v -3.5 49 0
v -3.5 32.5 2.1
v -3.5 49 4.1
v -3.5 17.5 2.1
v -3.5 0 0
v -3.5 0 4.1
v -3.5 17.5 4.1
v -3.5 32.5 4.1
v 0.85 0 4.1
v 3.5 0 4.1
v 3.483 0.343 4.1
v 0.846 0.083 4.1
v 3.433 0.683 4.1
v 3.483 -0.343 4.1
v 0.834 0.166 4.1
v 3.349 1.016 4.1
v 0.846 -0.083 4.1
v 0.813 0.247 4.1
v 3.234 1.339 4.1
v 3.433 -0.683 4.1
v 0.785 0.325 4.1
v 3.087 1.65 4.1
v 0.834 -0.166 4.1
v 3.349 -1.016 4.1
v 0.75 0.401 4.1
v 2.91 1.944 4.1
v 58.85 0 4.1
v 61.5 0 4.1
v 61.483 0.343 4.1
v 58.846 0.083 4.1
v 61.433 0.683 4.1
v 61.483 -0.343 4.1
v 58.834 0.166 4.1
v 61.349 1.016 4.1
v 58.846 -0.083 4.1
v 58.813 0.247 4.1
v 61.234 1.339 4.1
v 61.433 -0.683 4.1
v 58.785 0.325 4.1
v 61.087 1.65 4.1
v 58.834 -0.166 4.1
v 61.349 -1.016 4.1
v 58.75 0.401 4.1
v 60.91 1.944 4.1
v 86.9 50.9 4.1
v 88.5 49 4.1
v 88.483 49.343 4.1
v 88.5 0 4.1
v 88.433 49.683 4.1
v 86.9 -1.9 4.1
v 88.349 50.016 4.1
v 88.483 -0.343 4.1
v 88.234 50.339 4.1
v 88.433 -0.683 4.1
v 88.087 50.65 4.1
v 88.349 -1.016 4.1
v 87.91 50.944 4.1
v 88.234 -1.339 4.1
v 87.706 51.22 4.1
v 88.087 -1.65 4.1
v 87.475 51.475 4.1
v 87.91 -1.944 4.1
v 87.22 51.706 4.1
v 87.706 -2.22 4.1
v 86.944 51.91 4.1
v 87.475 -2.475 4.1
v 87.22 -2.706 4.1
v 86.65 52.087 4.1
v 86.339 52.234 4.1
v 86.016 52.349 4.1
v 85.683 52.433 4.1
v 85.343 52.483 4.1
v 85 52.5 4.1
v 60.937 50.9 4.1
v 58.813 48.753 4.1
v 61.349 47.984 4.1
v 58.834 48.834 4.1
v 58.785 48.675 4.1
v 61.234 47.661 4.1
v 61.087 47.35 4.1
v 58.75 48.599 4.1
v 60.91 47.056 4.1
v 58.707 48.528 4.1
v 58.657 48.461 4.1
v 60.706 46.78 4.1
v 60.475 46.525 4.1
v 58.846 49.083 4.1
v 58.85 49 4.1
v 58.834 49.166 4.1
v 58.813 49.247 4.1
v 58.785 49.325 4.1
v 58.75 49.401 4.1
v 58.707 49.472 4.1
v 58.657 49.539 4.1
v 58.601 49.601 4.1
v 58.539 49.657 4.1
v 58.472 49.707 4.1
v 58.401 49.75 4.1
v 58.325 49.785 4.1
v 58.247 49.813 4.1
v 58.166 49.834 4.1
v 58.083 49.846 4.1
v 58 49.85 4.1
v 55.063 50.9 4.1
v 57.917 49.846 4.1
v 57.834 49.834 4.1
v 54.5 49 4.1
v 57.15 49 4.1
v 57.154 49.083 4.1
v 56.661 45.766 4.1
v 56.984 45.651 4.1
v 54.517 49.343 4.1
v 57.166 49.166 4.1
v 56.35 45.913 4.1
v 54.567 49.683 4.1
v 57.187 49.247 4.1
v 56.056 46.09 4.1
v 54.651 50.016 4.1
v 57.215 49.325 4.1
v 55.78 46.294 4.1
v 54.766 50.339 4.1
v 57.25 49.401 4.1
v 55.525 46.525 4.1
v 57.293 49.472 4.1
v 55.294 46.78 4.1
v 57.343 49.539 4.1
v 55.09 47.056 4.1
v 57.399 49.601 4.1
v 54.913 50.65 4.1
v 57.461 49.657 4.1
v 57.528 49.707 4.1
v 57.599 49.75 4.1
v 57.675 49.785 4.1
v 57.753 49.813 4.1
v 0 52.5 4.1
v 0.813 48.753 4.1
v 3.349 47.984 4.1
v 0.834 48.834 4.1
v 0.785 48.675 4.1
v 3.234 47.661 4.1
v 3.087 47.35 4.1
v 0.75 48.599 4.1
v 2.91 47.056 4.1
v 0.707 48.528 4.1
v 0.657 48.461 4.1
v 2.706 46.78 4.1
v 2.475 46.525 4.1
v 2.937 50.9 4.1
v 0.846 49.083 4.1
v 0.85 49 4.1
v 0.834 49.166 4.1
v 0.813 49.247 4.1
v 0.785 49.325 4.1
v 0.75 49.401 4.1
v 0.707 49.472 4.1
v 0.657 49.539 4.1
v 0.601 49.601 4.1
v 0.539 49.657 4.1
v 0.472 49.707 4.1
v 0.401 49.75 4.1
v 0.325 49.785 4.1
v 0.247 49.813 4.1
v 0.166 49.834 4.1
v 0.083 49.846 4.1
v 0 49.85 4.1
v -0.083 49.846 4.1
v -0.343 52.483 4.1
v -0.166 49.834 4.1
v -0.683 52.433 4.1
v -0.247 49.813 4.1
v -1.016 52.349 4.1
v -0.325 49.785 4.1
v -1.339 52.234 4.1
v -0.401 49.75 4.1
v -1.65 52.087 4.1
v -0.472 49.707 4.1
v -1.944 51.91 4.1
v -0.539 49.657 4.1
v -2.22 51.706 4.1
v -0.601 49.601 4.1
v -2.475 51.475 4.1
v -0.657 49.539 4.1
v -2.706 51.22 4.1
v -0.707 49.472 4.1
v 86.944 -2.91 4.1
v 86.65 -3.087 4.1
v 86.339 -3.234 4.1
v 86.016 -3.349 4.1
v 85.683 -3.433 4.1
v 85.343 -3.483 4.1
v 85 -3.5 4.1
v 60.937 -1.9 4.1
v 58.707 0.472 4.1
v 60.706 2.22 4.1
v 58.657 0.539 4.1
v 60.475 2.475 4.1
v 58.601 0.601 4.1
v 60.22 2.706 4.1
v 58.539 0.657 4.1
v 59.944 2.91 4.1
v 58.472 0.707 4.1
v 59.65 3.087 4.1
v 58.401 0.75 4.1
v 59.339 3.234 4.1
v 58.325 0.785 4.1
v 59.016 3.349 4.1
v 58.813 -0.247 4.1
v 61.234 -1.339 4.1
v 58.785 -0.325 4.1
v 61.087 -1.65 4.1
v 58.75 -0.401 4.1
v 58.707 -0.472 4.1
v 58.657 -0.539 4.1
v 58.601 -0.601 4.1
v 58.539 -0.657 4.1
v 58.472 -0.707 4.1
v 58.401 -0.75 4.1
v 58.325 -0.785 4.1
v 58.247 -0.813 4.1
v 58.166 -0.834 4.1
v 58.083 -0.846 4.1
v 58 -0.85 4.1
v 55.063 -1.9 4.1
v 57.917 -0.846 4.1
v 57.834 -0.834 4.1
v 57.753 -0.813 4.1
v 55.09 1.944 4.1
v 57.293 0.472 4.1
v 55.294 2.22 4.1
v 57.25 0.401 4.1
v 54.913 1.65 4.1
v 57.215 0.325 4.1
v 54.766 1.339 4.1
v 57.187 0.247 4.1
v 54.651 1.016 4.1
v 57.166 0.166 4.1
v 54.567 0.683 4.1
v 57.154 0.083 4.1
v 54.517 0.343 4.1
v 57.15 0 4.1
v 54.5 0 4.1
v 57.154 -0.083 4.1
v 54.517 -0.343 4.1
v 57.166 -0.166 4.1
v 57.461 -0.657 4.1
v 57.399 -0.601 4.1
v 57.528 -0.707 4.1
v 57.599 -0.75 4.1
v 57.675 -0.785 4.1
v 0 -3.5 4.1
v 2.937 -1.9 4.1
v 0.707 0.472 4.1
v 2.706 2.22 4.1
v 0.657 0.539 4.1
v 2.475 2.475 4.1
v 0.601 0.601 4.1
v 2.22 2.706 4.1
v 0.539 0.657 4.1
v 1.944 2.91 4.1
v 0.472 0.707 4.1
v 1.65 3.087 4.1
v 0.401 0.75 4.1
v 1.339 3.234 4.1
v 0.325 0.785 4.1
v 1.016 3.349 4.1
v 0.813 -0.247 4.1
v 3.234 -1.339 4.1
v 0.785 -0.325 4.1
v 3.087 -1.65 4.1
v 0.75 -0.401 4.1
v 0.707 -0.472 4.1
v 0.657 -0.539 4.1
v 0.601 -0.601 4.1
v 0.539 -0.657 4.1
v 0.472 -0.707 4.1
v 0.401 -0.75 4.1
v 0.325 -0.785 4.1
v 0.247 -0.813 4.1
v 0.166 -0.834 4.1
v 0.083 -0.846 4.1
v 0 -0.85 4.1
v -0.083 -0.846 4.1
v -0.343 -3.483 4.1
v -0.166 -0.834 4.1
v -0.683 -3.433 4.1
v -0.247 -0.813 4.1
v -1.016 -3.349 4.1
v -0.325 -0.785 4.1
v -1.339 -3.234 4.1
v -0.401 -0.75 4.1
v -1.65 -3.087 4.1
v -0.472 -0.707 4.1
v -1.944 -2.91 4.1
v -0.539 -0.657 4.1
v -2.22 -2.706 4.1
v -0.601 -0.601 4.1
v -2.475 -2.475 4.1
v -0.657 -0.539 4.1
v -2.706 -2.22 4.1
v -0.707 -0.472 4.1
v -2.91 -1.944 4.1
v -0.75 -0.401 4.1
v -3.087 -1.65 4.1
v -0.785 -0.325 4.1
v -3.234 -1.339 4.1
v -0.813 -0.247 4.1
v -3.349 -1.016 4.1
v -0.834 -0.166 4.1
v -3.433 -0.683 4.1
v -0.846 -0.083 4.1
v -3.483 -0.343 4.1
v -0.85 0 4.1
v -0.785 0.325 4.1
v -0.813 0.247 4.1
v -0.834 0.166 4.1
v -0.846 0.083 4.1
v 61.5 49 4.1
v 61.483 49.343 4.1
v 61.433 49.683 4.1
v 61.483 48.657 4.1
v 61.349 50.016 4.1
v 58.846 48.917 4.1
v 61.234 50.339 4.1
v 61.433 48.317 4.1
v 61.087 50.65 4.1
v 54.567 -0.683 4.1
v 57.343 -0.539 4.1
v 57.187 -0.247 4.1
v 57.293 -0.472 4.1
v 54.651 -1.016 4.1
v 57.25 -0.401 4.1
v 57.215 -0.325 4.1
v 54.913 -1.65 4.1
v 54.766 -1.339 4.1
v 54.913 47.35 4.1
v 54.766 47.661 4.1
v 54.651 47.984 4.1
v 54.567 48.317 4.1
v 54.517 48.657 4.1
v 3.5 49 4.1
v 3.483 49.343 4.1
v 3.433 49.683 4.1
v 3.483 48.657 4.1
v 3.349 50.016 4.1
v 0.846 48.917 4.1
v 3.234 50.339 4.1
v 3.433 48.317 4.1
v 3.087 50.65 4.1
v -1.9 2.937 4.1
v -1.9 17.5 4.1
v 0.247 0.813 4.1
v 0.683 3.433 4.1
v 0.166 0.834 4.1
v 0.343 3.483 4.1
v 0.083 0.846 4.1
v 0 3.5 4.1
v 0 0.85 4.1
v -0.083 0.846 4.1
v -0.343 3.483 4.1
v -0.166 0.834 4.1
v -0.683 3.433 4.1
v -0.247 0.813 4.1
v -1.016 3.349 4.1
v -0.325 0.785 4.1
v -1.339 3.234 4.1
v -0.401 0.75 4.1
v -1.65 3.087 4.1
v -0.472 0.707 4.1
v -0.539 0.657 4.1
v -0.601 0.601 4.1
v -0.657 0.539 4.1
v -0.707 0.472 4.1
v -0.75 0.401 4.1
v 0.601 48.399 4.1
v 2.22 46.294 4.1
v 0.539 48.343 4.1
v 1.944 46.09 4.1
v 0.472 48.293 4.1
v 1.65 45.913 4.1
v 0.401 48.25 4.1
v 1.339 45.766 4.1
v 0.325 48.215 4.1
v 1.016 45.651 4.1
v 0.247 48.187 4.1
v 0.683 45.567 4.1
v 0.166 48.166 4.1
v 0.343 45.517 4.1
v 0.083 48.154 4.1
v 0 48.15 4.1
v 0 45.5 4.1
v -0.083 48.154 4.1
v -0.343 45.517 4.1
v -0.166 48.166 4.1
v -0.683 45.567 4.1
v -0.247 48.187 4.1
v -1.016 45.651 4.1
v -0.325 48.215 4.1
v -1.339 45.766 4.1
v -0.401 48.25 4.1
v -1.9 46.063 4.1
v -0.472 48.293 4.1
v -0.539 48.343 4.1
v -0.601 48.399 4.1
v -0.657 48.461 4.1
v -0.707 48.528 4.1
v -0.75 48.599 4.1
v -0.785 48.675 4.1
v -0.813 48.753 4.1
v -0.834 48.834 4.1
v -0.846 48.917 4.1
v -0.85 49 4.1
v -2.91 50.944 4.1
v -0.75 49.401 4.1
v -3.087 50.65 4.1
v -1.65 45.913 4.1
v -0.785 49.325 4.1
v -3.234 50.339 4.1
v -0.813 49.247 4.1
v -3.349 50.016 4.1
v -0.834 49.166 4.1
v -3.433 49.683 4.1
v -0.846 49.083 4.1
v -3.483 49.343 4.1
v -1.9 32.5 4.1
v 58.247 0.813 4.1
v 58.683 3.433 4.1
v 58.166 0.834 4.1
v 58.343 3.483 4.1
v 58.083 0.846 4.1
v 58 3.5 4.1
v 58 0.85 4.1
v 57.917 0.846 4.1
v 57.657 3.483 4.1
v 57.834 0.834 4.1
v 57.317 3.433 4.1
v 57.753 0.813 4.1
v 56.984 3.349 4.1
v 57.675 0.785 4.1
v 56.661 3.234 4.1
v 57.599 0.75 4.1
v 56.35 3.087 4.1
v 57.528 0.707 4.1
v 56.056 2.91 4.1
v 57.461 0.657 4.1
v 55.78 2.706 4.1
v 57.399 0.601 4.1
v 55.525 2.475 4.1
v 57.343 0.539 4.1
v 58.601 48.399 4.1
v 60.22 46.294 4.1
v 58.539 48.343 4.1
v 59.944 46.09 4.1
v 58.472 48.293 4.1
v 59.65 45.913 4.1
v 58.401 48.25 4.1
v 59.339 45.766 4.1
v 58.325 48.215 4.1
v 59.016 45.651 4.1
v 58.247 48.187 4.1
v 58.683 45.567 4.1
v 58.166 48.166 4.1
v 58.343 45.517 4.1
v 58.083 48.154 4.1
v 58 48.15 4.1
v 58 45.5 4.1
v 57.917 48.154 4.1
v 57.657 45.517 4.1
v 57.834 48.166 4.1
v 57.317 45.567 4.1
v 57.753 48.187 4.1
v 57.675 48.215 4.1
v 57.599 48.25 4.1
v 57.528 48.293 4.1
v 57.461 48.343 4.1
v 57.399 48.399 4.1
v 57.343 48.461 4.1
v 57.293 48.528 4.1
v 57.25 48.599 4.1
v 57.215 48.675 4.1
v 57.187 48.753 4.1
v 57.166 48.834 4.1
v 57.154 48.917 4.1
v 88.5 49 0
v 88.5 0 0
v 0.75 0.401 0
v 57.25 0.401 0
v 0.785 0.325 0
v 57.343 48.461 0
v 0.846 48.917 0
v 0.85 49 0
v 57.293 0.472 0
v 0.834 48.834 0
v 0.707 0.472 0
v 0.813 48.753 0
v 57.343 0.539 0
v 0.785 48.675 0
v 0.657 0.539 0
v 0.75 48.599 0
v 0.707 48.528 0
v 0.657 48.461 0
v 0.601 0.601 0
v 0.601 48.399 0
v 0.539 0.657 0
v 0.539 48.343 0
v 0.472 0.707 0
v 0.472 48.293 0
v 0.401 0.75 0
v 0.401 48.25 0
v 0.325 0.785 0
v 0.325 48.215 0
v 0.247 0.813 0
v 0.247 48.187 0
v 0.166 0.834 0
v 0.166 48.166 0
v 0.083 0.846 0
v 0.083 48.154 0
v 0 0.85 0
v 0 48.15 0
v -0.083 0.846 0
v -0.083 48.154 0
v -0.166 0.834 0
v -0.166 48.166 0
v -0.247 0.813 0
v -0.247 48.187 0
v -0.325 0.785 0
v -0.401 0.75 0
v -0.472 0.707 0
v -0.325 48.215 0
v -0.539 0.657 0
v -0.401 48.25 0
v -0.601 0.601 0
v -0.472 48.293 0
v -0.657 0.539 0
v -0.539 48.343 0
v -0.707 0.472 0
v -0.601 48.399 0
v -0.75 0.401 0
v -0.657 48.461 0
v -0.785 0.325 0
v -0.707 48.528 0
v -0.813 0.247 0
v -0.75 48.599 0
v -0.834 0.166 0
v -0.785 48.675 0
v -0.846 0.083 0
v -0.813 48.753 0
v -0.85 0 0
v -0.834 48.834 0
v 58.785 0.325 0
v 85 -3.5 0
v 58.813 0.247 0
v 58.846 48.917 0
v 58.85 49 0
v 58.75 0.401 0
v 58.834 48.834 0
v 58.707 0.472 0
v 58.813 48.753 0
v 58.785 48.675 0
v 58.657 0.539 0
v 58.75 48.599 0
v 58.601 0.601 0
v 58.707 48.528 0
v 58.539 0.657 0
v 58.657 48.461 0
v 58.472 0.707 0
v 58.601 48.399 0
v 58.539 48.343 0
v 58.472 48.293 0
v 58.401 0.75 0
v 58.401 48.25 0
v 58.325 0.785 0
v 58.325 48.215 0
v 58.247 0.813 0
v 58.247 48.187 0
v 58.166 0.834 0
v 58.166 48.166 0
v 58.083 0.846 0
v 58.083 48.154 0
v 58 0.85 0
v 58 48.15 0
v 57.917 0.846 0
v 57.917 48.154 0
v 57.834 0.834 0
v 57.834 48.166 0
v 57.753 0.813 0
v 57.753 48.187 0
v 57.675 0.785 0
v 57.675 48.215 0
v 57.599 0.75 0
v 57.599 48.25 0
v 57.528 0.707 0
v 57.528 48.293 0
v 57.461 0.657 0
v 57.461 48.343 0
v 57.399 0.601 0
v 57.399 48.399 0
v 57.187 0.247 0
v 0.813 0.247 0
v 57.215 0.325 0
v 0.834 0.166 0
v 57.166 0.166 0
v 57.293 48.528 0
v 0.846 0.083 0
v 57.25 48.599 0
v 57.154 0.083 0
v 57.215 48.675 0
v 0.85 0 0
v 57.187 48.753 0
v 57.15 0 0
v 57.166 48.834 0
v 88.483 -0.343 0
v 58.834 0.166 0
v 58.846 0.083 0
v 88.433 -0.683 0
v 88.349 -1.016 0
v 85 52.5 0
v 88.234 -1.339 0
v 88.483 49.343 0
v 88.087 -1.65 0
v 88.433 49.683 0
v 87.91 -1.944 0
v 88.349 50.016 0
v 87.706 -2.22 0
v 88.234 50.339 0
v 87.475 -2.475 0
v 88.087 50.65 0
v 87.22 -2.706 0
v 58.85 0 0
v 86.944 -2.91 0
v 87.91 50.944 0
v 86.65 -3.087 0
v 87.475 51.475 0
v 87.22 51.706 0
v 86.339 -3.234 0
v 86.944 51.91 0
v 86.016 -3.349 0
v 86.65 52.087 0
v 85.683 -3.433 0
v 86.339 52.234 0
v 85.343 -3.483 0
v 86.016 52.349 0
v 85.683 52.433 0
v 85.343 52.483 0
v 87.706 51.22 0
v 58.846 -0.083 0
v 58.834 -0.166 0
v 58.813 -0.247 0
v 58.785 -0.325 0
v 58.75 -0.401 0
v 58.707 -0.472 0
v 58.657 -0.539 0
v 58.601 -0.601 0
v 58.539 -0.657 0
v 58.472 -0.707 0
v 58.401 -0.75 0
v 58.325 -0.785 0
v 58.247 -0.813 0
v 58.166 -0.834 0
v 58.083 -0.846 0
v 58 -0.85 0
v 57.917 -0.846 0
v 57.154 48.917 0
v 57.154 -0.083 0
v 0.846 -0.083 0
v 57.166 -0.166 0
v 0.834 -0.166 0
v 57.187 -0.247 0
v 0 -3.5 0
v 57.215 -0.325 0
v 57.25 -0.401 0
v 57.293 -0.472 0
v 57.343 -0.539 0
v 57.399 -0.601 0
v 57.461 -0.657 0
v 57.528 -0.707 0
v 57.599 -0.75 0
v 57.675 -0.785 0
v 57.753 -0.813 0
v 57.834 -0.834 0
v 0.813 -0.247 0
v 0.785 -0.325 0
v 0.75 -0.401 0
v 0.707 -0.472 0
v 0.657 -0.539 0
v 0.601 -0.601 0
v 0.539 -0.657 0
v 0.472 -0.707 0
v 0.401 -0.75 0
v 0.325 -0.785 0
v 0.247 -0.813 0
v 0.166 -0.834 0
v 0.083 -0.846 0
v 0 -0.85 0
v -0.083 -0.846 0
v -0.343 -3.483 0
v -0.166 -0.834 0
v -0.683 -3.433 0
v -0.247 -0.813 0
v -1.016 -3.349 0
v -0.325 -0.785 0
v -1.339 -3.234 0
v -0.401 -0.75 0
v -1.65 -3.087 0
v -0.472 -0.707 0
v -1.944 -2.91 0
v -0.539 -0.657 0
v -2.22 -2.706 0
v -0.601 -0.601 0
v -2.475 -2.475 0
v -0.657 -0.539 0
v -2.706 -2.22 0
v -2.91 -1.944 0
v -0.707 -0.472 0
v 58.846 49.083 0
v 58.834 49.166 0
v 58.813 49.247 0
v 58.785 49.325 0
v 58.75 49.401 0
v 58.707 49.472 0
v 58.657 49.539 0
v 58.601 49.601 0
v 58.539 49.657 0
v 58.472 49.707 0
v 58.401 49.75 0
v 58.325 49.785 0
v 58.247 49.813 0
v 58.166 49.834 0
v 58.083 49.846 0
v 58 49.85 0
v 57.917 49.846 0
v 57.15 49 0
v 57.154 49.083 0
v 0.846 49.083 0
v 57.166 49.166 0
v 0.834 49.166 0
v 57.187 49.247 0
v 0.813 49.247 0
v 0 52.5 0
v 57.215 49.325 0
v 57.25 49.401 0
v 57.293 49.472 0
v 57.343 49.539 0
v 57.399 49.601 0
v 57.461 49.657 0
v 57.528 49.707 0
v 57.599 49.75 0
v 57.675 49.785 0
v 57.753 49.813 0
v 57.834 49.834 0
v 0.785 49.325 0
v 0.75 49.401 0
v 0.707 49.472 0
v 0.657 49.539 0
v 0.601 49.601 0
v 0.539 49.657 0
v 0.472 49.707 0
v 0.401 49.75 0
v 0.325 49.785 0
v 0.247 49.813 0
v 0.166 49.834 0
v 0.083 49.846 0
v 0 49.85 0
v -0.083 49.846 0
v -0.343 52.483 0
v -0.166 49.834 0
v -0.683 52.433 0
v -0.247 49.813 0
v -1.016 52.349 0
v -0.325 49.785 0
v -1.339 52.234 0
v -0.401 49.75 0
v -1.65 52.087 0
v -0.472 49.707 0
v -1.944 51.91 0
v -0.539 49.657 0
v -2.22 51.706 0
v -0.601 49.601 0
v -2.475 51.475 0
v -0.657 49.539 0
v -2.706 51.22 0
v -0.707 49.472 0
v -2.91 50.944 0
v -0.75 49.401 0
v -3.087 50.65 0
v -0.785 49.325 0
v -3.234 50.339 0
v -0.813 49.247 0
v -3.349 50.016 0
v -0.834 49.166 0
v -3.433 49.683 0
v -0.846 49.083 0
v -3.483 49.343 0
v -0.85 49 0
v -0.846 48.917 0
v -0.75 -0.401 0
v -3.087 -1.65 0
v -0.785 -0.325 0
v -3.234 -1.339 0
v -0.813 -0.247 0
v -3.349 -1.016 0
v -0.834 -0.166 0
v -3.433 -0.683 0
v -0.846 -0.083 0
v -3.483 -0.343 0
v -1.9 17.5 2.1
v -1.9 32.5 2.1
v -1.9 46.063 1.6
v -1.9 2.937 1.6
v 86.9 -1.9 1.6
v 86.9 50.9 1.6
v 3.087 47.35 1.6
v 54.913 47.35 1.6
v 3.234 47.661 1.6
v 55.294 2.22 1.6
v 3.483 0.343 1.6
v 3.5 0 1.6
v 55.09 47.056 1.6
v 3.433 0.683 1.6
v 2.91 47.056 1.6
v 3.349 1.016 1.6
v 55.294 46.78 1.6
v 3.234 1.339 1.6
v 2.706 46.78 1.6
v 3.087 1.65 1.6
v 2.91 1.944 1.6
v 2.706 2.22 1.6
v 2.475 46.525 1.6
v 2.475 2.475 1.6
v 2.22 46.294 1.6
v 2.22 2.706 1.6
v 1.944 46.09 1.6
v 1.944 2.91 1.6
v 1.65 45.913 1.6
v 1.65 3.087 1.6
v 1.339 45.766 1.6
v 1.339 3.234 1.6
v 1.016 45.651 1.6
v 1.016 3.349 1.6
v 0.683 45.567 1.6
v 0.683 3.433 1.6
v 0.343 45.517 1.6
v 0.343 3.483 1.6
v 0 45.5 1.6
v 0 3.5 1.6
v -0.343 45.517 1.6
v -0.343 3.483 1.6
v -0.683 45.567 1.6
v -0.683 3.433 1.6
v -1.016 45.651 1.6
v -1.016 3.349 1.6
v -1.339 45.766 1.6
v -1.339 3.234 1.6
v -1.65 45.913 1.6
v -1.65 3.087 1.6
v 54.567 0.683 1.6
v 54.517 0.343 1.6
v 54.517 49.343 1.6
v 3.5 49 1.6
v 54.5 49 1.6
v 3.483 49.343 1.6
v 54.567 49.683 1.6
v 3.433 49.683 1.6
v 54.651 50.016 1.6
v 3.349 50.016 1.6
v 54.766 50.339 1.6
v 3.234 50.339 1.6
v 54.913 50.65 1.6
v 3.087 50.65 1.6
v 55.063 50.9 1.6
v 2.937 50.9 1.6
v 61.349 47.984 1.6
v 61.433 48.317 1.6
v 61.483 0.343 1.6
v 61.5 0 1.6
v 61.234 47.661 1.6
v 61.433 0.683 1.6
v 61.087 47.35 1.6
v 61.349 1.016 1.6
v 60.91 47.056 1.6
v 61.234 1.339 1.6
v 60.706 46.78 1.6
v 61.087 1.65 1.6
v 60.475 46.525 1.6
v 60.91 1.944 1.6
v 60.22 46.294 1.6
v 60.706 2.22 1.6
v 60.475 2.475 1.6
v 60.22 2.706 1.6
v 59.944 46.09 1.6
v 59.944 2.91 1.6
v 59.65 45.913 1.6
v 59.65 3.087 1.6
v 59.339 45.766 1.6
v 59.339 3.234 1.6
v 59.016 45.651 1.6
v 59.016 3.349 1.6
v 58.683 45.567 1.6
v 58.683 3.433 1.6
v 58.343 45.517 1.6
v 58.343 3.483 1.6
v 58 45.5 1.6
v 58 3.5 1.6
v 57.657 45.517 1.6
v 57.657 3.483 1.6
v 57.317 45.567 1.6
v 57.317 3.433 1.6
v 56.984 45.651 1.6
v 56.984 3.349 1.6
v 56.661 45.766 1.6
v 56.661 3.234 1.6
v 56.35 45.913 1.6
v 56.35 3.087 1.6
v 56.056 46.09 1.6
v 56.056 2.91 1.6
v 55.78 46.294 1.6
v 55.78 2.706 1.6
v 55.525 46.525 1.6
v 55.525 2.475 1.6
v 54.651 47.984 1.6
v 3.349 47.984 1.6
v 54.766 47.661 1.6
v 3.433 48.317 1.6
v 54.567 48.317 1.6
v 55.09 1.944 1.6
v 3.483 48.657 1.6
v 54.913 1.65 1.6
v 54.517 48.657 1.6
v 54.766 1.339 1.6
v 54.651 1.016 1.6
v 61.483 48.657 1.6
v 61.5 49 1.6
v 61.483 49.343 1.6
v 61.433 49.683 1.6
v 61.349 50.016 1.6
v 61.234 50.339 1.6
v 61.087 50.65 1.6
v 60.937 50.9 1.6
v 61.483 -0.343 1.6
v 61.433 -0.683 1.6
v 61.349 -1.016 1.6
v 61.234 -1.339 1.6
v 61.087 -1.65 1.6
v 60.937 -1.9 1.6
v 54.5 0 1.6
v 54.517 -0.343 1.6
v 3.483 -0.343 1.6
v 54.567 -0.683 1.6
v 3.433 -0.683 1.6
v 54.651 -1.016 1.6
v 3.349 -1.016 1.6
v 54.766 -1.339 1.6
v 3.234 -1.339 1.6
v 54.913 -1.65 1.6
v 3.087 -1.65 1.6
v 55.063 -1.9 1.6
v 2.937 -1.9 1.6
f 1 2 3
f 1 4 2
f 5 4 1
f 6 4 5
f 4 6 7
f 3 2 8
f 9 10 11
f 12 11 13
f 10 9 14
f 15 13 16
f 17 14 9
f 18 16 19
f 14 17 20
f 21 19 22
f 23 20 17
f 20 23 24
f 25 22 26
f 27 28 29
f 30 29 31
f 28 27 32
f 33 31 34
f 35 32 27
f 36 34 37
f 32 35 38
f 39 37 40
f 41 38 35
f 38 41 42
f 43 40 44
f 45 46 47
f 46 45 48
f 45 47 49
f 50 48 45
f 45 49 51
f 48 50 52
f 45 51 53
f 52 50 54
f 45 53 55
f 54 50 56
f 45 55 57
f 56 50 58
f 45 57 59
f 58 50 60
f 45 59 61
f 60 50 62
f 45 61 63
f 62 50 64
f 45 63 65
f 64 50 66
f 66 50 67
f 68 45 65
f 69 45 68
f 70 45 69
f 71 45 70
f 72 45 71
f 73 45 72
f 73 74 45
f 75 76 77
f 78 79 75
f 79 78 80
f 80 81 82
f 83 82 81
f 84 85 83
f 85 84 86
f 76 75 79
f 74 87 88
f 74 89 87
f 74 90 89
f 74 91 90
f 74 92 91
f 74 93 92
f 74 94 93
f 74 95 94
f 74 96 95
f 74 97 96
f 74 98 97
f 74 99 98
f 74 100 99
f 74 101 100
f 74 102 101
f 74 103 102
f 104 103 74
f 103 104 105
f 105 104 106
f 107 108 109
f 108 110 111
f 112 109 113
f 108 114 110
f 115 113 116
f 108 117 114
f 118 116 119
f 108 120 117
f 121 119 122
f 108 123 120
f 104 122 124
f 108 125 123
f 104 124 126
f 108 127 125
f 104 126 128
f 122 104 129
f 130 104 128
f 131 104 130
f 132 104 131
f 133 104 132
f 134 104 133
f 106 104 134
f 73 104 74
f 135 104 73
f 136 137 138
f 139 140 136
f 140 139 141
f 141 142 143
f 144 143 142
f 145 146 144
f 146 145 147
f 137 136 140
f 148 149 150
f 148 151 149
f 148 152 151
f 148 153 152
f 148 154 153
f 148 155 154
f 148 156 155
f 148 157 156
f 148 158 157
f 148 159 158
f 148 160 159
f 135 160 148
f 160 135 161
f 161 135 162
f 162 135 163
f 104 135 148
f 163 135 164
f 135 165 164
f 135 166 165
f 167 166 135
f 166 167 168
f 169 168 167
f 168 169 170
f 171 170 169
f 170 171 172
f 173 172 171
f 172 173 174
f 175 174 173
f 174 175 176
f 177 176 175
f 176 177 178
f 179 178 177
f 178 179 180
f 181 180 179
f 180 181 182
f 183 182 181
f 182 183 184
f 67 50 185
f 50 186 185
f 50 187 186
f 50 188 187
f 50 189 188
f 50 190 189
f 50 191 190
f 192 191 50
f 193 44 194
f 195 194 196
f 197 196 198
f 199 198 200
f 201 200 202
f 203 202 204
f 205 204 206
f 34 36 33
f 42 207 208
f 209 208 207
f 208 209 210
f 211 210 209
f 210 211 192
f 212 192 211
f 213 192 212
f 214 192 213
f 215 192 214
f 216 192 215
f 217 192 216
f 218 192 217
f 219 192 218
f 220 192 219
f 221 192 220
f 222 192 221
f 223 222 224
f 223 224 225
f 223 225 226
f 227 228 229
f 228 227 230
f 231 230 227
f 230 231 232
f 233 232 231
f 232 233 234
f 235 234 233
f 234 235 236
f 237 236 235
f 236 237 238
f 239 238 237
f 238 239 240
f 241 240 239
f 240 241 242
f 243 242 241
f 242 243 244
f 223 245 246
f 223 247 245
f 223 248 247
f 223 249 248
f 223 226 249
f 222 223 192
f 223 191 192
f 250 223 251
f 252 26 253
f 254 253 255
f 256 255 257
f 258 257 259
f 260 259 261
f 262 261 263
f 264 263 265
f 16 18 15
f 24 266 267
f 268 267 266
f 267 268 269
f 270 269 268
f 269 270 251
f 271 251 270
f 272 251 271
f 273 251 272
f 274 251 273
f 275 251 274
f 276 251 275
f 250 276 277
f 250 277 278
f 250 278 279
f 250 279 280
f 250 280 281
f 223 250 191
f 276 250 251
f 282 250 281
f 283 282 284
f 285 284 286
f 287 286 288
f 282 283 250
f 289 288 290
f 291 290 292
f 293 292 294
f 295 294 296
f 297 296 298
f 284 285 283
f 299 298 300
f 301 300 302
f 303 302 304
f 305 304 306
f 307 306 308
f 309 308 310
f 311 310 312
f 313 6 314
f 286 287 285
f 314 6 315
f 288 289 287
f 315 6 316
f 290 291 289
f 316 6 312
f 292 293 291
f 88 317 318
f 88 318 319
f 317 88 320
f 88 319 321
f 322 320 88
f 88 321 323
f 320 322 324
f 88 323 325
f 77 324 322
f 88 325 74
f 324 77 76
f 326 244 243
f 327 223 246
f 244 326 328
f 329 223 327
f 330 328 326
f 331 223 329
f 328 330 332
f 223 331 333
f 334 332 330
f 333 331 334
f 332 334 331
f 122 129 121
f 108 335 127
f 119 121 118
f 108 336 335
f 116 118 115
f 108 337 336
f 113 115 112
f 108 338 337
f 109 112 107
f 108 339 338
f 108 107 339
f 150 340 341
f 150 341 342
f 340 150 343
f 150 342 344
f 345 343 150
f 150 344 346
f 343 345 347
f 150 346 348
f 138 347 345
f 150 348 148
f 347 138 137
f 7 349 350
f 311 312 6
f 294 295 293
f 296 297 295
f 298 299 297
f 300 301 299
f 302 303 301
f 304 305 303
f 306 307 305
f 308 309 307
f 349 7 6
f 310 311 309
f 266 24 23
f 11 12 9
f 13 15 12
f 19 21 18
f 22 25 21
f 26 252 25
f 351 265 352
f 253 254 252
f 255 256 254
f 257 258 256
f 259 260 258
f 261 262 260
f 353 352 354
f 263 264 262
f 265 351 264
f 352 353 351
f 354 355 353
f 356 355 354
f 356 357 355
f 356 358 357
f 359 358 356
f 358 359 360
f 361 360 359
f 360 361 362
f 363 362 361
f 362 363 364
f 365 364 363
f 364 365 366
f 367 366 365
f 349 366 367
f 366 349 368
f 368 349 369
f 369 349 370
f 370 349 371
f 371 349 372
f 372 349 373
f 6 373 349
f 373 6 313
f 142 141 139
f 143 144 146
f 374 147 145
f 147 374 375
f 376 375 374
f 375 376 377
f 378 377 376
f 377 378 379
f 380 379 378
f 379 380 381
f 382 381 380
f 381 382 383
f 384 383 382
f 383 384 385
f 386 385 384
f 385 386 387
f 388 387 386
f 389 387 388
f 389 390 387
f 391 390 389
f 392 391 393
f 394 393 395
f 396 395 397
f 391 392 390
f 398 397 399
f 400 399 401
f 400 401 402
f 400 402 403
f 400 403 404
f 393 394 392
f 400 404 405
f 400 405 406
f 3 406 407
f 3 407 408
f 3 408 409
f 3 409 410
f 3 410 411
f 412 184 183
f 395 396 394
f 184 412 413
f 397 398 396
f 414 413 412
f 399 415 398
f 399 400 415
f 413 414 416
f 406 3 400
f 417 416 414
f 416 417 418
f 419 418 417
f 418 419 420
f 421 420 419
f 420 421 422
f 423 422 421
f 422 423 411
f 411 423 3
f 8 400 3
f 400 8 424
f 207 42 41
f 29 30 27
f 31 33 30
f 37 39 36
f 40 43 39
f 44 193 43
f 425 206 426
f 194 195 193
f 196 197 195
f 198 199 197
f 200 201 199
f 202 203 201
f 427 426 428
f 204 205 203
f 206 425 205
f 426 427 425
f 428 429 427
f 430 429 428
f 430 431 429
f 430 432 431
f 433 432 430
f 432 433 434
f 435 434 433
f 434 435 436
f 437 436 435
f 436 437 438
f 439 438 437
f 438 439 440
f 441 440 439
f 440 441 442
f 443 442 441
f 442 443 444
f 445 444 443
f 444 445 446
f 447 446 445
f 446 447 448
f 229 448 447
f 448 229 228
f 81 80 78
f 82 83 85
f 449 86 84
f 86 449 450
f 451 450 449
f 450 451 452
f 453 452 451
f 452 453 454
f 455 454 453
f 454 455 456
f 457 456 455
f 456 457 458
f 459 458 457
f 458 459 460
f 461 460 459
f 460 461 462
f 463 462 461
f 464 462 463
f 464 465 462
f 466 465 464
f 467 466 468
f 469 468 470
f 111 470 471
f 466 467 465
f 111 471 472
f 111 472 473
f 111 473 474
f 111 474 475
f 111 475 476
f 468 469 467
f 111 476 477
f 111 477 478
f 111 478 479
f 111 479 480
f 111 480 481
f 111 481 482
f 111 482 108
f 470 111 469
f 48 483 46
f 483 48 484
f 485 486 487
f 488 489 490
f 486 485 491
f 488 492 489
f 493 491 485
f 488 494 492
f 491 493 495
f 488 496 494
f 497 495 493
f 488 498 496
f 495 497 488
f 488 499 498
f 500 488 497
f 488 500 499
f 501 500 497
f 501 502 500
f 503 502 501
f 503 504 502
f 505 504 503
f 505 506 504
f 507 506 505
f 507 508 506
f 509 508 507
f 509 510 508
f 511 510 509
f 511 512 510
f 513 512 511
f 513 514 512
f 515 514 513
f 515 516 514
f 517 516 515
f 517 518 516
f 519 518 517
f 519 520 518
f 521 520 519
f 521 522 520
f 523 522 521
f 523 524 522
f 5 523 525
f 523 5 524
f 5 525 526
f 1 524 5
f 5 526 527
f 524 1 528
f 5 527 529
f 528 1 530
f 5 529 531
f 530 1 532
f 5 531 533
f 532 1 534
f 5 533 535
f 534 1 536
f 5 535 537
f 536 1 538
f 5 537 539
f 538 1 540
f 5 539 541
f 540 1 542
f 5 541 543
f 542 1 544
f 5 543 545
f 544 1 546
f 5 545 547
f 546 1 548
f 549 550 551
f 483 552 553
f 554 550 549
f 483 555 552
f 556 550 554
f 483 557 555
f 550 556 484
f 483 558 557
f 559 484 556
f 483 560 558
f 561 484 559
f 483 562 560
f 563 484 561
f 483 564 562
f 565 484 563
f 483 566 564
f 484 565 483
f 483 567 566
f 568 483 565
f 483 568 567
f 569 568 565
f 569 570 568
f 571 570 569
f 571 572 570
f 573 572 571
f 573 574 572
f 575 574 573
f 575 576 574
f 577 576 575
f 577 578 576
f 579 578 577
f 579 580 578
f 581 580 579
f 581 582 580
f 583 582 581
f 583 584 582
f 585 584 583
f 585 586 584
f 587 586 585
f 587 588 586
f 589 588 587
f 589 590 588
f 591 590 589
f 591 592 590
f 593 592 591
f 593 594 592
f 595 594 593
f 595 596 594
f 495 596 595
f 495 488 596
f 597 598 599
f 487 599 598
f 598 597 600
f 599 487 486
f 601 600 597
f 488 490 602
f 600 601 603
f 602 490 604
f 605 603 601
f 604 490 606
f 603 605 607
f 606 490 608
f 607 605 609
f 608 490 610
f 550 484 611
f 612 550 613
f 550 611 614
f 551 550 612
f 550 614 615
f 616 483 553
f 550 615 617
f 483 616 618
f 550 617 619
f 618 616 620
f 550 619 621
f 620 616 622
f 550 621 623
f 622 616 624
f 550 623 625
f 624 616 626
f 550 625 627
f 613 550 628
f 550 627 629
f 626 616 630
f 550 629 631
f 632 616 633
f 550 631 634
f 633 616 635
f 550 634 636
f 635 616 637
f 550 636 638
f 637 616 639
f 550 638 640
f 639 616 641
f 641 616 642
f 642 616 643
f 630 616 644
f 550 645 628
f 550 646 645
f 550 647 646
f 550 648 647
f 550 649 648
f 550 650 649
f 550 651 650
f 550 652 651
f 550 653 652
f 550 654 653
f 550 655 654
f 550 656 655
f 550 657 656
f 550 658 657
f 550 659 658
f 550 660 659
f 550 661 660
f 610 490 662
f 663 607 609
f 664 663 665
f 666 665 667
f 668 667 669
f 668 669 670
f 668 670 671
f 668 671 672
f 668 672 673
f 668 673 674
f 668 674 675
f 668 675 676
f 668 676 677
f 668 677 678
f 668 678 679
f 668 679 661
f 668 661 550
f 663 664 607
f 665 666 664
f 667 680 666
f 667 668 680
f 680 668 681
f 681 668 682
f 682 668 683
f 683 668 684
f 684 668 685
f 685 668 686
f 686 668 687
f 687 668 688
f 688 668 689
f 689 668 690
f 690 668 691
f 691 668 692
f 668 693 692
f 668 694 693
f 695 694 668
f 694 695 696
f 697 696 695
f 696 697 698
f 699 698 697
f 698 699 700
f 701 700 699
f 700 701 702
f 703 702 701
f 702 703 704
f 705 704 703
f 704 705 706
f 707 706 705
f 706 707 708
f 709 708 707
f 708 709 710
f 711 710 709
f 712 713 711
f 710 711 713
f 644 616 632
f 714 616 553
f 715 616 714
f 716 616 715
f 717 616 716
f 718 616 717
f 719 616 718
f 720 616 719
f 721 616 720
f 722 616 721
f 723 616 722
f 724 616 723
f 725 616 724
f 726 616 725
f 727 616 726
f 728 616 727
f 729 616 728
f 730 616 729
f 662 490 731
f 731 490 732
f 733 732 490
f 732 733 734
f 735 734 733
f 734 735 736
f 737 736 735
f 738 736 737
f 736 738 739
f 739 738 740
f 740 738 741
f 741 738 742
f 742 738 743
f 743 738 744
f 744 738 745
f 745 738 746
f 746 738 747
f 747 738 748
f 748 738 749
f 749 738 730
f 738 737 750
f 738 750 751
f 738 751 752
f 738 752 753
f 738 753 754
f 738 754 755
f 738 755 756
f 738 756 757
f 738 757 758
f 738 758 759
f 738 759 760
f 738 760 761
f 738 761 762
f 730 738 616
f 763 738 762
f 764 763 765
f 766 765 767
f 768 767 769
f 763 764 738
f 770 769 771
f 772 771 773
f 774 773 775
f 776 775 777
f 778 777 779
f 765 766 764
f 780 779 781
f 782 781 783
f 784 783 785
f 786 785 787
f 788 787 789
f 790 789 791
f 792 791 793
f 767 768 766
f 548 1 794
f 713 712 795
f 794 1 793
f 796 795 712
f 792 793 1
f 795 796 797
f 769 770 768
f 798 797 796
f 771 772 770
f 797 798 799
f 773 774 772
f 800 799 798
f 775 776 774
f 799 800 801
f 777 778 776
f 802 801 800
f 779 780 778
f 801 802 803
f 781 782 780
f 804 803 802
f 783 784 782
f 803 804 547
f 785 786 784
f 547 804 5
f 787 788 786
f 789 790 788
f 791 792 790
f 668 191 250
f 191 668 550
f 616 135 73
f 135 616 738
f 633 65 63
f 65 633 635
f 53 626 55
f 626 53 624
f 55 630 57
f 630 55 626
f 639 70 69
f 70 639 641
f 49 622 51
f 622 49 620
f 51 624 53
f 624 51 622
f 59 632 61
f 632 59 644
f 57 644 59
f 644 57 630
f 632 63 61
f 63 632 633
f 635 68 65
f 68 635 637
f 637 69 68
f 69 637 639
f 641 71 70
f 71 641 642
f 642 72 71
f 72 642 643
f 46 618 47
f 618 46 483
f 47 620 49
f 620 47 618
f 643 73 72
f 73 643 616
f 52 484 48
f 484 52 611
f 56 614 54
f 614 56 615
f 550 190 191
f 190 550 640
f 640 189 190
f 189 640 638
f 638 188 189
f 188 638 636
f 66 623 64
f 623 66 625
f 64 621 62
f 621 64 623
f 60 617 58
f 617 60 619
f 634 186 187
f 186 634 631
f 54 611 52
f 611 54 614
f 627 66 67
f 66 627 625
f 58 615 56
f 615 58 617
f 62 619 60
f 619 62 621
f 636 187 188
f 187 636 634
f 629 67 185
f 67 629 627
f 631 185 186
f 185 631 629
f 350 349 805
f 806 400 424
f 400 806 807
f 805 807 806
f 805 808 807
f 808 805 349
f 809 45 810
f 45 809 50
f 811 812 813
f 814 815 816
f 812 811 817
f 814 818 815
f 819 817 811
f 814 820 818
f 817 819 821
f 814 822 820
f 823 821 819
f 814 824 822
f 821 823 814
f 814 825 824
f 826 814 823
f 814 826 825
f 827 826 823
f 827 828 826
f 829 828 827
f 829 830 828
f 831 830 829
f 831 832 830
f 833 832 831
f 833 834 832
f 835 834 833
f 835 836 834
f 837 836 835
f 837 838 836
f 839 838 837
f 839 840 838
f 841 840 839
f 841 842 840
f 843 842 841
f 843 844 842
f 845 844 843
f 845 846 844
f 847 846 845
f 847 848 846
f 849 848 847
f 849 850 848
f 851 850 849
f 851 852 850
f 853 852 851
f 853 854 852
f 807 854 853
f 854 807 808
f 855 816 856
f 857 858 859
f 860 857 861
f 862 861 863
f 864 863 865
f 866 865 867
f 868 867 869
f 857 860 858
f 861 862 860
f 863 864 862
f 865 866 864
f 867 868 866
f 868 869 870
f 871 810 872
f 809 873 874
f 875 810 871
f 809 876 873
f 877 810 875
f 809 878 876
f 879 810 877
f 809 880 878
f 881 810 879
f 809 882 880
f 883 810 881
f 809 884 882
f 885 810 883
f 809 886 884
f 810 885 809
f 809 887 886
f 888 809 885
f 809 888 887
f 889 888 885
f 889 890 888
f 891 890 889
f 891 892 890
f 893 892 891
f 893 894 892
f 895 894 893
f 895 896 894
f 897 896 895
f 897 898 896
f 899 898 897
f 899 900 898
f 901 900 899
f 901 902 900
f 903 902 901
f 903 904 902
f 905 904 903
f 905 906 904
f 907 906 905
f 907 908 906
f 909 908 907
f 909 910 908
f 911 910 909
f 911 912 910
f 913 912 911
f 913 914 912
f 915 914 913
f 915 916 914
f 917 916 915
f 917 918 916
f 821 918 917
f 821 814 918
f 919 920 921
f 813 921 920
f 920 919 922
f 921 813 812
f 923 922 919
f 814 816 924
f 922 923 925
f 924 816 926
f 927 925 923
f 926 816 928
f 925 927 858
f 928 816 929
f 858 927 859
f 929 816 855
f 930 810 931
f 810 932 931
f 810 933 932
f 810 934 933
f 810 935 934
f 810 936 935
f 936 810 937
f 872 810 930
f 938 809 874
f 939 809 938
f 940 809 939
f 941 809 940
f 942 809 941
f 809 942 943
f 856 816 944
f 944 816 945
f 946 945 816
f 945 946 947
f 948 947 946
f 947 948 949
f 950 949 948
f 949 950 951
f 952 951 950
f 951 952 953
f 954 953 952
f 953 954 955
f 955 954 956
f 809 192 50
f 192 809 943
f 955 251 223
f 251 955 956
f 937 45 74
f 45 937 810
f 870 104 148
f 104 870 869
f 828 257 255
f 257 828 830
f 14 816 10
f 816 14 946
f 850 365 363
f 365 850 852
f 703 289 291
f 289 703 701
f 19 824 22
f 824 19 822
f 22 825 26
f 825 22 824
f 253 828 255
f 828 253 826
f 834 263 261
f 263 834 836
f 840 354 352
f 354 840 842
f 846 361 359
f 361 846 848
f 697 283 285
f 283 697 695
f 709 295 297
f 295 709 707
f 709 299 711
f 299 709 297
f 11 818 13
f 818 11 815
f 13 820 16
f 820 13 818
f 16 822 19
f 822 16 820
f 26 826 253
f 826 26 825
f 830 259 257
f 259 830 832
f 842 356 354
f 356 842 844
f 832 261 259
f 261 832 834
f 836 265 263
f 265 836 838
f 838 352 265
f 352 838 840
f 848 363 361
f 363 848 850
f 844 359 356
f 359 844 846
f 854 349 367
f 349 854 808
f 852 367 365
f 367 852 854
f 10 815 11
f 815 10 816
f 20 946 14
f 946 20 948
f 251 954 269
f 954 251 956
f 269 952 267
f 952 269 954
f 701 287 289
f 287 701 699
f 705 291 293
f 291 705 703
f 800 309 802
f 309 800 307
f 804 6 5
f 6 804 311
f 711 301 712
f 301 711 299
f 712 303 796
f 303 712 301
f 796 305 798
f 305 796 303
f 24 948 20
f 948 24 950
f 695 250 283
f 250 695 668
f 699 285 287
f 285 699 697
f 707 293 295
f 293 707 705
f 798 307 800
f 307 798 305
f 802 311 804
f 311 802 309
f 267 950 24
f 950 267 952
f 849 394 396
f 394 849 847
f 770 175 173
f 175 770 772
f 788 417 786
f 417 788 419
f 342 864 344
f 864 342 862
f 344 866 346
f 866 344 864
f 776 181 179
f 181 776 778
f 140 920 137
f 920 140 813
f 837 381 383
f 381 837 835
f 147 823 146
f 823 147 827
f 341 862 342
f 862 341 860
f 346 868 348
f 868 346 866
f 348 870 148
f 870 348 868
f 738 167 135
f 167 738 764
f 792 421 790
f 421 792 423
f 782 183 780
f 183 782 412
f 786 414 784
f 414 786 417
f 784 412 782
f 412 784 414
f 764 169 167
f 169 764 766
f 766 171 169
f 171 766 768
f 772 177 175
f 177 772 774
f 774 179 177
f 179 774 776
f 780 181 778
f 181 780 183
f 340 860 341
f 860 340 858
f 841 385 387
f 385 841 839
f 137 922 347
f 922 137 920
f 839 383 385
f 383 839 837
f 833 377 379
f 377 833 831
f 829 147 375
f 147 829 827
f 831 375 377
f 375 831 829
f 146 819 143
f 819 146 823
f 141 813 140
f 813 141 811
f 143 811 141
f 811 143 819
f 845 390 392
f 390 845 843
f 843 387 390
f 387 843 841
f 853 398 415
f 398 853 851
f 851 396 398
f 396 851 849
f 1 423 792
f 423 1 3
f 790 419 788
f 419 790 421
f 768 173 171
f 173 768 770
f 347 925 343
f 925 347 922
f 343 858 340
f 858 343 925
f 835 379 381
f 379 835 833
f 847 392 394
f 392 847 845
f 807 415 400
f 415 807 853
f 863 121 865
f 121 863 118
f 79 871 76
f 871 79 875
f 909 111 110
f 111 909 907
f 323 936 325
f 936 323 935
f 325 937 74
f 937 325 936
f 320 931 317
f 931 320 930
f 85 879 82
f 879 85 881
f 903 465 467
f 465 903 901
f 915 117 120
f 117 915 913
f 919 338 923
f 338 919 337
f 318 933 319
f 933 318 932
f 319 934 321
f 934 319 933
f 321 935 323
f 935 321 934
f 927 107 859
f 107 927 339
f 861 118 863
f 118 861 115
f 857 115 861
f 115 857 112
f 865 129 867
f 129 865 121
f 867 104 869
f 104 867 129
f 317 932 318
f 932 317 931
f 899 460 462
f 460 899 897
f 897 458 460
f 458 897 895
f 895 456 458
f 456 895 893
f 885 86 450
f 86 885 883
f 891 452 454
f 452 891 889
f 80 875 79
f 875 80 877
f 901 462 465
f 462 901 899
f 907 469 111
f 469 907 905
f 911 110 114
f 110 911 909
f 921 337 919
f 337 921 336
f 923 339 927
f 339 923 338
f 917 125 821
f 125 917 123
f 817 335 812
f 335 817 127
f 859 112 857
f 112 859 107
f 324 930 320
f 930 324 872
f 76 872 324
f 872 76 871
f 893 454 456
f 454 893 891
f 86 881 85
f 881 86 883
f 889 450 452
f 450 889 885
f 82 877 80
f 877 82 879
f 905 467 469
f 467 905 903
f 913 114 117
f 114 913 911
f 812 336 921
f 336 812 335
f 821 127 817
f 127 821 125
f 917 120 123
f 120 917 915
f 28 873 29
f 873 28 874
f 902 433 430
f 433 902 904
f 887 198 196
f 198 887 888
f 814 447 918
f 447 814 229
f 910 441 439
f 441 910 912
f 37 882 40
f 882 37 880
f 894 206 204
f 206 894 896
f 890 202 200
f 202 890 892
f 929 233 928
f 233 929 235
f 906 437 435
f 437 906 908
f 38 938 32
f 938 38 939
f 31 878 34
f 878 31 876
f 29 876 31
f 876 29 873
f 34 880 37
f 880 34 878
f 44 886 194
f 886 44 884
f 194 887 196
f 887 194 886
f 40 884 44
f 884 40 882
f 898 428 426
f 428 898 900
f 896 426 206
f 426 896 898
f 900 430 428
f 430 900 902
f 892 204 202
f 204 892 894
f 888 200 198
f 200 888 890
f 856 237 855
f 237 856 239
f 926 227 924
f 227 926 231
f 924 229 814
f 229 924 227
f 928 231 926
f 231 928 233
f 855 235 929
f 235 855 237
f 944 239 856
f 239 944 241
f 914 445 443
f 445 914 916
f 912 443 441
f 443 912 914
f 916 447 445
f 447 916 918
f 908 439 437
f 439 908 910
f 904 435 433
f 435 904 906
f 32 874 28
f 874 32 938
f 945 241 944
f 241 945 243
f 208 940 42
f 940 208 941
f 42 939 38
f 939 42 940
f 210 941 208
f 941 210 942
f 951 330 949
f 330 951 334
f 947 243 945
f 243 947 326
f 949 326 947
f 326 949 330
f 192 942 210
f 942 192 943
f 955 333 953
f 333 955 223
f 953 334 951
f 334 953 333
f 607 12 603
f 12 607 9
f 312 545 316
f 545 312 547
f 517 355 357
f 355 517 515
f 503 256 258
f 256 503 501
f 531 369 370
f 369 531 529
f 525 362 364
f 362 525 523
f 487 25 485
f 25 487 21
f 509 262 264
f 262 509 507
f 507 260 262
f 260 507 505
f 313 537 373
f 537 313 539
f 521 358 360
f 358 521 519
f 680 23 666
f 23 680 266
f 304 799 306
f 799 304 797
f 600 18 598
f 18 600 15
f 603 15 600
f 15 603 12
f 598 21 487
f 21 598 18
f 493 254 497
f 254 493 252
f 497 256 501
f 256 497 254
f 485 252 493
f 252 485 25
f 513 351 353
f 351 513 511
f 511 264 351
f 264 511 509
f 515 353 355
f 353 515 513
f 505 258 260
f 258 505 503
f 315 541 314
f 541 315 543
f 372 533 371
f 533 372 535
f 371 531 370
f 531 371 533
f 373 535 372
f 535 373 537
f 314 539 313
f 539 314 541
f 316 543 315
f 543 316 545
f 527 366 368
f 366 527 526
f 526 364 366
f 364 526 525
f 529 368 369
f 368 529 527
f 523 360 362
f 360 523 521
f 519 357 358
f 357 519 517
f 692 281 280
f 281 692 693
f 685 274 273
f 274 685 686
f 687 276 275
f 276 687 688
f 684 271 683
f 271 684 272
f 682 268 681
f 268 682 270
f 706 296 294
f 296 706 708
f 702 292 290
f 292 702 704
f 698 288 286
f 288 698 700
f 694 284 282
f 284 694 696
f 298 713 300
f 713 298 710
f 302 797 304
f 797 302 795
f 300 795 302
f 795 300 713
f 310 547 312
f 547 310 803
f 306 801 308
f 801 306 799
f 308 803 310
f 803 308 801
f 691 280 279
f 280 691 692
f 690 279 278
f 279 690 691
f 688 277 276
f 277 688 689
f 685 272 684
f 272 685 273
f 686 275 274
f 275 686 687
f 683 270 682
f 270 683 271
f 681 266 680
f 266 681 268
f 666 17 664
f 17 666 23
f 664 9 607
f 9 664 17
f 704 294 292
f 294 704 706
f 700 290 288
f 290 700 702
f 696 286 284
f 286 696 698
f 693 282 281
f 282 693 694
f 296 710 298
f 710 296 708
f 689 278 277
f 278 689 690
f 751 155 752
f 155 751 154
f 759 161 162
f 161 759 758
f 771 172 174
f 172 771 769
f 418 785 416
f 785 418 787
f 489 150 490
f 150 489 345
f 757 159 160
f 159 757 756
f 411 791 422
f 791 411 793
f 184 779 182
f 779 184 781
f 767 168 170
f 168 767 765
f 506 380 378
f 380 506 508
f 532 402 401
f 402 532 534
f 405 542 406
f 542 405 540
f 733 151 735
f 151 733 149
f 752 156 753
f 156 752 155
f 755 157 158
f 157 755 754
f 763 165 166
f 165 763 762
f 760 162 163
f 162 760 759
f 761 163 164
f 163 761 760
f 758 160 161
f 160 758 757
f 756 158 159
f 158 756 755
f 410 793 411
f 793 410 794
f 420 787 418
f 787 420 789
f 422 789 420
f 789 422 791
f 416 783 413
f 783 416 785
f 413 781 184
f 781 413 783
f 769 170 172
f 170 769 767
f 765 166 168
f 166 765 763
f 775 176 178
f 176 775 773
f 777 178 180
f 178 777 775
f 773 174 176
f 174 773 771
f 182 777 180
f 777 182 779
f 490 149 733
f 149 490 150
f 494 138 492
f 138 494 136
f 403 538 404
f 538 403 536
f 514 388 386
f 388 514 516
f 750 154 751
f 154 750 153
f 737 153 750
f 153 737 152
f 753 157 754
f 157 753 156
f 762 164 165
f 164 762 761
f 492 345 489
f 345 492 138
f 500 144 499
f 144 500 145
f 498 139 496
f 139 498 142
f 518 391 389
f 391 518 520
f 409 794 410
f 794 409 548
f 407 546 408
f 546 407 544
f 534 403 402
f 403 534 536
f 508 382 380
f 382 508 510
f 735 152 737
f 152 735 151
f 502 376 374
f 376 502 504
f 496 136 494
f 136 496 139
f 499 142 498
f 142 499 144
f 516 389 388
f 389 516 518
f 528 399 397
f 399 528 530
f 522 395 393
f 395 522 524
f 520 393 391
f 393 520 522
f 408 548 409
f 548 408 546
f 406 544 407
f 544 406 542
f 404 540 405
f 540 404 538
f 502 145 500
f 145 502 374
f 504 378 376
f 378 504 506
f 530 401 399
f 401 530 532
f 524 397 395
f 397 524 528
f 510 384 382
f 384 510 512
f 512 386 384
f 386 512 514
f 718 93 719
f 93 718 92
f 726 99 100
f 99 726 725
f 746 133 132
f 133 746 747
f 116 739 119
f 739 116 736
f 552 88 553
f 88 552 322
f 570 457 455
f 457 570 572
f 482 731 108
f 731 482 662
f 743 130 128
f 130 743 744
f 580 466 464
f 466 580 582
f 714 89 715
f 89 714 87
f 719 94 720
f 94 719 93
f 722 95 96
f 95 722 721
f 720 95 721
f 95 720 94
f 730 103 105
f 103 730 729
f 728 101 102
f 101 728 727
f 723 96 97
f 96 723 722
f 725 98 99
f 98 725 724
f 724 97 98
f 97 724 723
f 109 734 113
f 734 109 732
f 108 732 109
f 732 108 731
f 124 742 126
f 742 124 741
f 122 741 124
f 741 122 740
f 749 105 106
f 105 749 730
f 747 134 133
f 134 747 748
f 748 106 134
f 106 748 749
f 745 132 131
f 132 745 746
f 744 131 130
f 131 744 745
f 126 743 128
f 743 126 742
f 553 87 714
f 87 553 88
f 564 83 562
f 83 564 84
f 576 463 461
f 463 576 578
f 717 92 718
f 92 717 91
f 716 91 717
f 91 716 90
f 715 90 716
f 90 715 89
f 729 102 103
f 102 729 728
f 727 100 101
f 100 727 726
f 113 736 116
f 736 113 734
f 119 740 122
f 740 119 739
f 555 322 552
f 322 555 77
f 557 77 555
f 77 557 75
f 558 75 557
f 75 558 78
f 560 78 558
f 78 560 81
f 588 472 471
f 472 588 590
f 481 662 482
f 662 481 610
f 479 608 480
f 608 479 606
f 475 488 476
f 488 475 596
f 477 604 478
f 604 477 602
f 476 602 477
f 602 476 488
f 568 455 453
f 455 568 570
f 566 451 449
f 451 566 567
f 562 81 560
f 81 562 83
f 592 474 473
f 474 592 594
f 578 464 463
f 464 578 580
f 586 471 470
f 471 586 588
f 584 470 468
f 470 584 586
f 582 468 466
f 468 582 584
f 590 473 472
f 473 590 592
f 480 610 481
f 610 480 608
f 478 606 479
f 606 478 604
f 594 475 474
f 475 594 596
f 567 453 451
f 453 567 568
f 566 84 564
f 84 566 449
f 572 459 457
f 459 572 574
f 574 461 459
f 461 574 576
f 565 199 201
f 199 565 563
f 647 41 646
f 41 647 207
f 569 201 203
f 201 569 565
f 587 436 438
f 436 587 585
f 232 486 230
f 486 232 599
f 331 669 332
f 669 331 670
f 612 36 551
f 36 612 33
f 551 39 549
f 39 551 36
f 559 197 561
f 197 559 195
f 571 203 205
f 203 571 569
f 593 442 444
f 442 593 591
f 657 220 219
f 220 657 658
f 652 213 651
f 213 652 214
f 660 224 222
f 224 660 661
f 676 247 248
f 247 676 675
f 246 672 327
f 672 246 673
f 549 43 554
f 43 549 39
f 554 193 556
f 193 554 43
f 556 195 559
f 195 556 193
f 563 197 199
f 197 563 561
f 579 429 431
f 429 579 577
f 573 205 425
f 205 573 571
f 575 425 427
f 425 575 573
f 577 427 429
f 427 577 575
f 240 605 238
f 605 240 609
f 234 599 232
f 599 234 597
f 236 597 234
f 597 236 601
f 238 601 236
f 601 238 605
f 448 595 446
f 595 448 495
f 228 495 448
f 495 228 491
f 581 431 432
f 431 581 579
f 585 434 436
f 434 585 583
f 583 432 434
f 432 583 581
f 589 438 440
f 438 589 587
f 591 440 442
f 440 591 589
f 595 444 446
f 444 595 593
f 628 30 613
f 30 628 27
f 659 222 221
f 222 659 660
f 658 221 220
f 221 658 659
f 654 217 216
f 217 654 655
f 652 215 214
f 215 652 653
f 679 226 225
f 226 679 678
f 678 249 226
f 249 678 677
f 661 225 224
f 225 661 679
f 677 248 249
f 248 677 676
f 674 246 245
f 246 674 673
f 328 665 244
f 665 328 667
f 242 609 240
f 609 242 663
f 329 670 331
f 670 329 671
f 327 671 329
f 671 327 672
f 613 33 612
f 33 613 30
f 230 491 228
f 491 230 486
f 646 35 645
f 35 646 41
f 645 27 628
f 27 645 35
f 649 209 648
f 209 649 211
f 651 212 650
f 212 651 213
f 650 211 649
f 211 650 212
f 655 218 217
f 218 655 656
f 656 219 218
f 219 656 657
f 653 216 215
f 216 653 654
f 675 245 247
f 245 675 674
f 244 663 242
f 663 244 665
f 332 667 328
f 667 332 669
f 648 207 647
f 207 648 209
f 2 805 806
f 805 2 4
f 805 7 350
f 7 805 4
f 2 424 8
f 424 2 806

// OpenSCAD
thickness=1.6;
radius=3.5;
drill=0.85;
height=49;
width=85;
depth=thickness+2.5;
countersink = false;
$fn = 64; //number of faces on a circle

difference()
{
    union()
    {
        //create walls
        difference()
        {
            union()
            {
            translate([-radius,0,0])
                cube([width+2*radius,height,depth]);
            translate([0,-radius,0])
                cube([width,height+2*radius,depth]);
            translate([width,height,0])
                cylinder(depth,radius,radius);
            translate([width,0,0])
                cylinder(depth,radius,radius);
            }
            translate([-radius+thickness,-radius+thickness,thickness])
                cube([width+2*(radius-thickness),height+2*(radius-thickness),depth]);
        }
        
        //add the mounting brackets
        cylinder(depth,radius,radius);
        translate([0,height,0])
            cylinder(depth,radius,radius);
        translate([58,height,0])
            cylinder(depth,radius,radius);
        translate([58,0,0])
            cylinder(depth,radius,radius);
    }

    //drill holes
    cylinder(depth,drill,drill);
    translate([0,height,0])
        cylinder(depth,drill,drill);
    translate([58,height,0])
        cylinder(depth,drill,drill);
    translate([58,0,0])
        cylinder(depth,drill,drill);
    
    //countersink
    if(countersink==true)
    {
        cylinder(drill,drill*2,drill);
        translate([0,height,0])
            cylinder(drill,drill*2,drill);
        translate([width,height,0])
            cylinder(drill,drill*2,drill);
        translate([width,0,0])
            cylinder(drill,drill*2,drill);
    }    
    
    //add slot for microsd
    translate([-radius,21-radius,depth-2])
        cube([16,15,2]);
}
